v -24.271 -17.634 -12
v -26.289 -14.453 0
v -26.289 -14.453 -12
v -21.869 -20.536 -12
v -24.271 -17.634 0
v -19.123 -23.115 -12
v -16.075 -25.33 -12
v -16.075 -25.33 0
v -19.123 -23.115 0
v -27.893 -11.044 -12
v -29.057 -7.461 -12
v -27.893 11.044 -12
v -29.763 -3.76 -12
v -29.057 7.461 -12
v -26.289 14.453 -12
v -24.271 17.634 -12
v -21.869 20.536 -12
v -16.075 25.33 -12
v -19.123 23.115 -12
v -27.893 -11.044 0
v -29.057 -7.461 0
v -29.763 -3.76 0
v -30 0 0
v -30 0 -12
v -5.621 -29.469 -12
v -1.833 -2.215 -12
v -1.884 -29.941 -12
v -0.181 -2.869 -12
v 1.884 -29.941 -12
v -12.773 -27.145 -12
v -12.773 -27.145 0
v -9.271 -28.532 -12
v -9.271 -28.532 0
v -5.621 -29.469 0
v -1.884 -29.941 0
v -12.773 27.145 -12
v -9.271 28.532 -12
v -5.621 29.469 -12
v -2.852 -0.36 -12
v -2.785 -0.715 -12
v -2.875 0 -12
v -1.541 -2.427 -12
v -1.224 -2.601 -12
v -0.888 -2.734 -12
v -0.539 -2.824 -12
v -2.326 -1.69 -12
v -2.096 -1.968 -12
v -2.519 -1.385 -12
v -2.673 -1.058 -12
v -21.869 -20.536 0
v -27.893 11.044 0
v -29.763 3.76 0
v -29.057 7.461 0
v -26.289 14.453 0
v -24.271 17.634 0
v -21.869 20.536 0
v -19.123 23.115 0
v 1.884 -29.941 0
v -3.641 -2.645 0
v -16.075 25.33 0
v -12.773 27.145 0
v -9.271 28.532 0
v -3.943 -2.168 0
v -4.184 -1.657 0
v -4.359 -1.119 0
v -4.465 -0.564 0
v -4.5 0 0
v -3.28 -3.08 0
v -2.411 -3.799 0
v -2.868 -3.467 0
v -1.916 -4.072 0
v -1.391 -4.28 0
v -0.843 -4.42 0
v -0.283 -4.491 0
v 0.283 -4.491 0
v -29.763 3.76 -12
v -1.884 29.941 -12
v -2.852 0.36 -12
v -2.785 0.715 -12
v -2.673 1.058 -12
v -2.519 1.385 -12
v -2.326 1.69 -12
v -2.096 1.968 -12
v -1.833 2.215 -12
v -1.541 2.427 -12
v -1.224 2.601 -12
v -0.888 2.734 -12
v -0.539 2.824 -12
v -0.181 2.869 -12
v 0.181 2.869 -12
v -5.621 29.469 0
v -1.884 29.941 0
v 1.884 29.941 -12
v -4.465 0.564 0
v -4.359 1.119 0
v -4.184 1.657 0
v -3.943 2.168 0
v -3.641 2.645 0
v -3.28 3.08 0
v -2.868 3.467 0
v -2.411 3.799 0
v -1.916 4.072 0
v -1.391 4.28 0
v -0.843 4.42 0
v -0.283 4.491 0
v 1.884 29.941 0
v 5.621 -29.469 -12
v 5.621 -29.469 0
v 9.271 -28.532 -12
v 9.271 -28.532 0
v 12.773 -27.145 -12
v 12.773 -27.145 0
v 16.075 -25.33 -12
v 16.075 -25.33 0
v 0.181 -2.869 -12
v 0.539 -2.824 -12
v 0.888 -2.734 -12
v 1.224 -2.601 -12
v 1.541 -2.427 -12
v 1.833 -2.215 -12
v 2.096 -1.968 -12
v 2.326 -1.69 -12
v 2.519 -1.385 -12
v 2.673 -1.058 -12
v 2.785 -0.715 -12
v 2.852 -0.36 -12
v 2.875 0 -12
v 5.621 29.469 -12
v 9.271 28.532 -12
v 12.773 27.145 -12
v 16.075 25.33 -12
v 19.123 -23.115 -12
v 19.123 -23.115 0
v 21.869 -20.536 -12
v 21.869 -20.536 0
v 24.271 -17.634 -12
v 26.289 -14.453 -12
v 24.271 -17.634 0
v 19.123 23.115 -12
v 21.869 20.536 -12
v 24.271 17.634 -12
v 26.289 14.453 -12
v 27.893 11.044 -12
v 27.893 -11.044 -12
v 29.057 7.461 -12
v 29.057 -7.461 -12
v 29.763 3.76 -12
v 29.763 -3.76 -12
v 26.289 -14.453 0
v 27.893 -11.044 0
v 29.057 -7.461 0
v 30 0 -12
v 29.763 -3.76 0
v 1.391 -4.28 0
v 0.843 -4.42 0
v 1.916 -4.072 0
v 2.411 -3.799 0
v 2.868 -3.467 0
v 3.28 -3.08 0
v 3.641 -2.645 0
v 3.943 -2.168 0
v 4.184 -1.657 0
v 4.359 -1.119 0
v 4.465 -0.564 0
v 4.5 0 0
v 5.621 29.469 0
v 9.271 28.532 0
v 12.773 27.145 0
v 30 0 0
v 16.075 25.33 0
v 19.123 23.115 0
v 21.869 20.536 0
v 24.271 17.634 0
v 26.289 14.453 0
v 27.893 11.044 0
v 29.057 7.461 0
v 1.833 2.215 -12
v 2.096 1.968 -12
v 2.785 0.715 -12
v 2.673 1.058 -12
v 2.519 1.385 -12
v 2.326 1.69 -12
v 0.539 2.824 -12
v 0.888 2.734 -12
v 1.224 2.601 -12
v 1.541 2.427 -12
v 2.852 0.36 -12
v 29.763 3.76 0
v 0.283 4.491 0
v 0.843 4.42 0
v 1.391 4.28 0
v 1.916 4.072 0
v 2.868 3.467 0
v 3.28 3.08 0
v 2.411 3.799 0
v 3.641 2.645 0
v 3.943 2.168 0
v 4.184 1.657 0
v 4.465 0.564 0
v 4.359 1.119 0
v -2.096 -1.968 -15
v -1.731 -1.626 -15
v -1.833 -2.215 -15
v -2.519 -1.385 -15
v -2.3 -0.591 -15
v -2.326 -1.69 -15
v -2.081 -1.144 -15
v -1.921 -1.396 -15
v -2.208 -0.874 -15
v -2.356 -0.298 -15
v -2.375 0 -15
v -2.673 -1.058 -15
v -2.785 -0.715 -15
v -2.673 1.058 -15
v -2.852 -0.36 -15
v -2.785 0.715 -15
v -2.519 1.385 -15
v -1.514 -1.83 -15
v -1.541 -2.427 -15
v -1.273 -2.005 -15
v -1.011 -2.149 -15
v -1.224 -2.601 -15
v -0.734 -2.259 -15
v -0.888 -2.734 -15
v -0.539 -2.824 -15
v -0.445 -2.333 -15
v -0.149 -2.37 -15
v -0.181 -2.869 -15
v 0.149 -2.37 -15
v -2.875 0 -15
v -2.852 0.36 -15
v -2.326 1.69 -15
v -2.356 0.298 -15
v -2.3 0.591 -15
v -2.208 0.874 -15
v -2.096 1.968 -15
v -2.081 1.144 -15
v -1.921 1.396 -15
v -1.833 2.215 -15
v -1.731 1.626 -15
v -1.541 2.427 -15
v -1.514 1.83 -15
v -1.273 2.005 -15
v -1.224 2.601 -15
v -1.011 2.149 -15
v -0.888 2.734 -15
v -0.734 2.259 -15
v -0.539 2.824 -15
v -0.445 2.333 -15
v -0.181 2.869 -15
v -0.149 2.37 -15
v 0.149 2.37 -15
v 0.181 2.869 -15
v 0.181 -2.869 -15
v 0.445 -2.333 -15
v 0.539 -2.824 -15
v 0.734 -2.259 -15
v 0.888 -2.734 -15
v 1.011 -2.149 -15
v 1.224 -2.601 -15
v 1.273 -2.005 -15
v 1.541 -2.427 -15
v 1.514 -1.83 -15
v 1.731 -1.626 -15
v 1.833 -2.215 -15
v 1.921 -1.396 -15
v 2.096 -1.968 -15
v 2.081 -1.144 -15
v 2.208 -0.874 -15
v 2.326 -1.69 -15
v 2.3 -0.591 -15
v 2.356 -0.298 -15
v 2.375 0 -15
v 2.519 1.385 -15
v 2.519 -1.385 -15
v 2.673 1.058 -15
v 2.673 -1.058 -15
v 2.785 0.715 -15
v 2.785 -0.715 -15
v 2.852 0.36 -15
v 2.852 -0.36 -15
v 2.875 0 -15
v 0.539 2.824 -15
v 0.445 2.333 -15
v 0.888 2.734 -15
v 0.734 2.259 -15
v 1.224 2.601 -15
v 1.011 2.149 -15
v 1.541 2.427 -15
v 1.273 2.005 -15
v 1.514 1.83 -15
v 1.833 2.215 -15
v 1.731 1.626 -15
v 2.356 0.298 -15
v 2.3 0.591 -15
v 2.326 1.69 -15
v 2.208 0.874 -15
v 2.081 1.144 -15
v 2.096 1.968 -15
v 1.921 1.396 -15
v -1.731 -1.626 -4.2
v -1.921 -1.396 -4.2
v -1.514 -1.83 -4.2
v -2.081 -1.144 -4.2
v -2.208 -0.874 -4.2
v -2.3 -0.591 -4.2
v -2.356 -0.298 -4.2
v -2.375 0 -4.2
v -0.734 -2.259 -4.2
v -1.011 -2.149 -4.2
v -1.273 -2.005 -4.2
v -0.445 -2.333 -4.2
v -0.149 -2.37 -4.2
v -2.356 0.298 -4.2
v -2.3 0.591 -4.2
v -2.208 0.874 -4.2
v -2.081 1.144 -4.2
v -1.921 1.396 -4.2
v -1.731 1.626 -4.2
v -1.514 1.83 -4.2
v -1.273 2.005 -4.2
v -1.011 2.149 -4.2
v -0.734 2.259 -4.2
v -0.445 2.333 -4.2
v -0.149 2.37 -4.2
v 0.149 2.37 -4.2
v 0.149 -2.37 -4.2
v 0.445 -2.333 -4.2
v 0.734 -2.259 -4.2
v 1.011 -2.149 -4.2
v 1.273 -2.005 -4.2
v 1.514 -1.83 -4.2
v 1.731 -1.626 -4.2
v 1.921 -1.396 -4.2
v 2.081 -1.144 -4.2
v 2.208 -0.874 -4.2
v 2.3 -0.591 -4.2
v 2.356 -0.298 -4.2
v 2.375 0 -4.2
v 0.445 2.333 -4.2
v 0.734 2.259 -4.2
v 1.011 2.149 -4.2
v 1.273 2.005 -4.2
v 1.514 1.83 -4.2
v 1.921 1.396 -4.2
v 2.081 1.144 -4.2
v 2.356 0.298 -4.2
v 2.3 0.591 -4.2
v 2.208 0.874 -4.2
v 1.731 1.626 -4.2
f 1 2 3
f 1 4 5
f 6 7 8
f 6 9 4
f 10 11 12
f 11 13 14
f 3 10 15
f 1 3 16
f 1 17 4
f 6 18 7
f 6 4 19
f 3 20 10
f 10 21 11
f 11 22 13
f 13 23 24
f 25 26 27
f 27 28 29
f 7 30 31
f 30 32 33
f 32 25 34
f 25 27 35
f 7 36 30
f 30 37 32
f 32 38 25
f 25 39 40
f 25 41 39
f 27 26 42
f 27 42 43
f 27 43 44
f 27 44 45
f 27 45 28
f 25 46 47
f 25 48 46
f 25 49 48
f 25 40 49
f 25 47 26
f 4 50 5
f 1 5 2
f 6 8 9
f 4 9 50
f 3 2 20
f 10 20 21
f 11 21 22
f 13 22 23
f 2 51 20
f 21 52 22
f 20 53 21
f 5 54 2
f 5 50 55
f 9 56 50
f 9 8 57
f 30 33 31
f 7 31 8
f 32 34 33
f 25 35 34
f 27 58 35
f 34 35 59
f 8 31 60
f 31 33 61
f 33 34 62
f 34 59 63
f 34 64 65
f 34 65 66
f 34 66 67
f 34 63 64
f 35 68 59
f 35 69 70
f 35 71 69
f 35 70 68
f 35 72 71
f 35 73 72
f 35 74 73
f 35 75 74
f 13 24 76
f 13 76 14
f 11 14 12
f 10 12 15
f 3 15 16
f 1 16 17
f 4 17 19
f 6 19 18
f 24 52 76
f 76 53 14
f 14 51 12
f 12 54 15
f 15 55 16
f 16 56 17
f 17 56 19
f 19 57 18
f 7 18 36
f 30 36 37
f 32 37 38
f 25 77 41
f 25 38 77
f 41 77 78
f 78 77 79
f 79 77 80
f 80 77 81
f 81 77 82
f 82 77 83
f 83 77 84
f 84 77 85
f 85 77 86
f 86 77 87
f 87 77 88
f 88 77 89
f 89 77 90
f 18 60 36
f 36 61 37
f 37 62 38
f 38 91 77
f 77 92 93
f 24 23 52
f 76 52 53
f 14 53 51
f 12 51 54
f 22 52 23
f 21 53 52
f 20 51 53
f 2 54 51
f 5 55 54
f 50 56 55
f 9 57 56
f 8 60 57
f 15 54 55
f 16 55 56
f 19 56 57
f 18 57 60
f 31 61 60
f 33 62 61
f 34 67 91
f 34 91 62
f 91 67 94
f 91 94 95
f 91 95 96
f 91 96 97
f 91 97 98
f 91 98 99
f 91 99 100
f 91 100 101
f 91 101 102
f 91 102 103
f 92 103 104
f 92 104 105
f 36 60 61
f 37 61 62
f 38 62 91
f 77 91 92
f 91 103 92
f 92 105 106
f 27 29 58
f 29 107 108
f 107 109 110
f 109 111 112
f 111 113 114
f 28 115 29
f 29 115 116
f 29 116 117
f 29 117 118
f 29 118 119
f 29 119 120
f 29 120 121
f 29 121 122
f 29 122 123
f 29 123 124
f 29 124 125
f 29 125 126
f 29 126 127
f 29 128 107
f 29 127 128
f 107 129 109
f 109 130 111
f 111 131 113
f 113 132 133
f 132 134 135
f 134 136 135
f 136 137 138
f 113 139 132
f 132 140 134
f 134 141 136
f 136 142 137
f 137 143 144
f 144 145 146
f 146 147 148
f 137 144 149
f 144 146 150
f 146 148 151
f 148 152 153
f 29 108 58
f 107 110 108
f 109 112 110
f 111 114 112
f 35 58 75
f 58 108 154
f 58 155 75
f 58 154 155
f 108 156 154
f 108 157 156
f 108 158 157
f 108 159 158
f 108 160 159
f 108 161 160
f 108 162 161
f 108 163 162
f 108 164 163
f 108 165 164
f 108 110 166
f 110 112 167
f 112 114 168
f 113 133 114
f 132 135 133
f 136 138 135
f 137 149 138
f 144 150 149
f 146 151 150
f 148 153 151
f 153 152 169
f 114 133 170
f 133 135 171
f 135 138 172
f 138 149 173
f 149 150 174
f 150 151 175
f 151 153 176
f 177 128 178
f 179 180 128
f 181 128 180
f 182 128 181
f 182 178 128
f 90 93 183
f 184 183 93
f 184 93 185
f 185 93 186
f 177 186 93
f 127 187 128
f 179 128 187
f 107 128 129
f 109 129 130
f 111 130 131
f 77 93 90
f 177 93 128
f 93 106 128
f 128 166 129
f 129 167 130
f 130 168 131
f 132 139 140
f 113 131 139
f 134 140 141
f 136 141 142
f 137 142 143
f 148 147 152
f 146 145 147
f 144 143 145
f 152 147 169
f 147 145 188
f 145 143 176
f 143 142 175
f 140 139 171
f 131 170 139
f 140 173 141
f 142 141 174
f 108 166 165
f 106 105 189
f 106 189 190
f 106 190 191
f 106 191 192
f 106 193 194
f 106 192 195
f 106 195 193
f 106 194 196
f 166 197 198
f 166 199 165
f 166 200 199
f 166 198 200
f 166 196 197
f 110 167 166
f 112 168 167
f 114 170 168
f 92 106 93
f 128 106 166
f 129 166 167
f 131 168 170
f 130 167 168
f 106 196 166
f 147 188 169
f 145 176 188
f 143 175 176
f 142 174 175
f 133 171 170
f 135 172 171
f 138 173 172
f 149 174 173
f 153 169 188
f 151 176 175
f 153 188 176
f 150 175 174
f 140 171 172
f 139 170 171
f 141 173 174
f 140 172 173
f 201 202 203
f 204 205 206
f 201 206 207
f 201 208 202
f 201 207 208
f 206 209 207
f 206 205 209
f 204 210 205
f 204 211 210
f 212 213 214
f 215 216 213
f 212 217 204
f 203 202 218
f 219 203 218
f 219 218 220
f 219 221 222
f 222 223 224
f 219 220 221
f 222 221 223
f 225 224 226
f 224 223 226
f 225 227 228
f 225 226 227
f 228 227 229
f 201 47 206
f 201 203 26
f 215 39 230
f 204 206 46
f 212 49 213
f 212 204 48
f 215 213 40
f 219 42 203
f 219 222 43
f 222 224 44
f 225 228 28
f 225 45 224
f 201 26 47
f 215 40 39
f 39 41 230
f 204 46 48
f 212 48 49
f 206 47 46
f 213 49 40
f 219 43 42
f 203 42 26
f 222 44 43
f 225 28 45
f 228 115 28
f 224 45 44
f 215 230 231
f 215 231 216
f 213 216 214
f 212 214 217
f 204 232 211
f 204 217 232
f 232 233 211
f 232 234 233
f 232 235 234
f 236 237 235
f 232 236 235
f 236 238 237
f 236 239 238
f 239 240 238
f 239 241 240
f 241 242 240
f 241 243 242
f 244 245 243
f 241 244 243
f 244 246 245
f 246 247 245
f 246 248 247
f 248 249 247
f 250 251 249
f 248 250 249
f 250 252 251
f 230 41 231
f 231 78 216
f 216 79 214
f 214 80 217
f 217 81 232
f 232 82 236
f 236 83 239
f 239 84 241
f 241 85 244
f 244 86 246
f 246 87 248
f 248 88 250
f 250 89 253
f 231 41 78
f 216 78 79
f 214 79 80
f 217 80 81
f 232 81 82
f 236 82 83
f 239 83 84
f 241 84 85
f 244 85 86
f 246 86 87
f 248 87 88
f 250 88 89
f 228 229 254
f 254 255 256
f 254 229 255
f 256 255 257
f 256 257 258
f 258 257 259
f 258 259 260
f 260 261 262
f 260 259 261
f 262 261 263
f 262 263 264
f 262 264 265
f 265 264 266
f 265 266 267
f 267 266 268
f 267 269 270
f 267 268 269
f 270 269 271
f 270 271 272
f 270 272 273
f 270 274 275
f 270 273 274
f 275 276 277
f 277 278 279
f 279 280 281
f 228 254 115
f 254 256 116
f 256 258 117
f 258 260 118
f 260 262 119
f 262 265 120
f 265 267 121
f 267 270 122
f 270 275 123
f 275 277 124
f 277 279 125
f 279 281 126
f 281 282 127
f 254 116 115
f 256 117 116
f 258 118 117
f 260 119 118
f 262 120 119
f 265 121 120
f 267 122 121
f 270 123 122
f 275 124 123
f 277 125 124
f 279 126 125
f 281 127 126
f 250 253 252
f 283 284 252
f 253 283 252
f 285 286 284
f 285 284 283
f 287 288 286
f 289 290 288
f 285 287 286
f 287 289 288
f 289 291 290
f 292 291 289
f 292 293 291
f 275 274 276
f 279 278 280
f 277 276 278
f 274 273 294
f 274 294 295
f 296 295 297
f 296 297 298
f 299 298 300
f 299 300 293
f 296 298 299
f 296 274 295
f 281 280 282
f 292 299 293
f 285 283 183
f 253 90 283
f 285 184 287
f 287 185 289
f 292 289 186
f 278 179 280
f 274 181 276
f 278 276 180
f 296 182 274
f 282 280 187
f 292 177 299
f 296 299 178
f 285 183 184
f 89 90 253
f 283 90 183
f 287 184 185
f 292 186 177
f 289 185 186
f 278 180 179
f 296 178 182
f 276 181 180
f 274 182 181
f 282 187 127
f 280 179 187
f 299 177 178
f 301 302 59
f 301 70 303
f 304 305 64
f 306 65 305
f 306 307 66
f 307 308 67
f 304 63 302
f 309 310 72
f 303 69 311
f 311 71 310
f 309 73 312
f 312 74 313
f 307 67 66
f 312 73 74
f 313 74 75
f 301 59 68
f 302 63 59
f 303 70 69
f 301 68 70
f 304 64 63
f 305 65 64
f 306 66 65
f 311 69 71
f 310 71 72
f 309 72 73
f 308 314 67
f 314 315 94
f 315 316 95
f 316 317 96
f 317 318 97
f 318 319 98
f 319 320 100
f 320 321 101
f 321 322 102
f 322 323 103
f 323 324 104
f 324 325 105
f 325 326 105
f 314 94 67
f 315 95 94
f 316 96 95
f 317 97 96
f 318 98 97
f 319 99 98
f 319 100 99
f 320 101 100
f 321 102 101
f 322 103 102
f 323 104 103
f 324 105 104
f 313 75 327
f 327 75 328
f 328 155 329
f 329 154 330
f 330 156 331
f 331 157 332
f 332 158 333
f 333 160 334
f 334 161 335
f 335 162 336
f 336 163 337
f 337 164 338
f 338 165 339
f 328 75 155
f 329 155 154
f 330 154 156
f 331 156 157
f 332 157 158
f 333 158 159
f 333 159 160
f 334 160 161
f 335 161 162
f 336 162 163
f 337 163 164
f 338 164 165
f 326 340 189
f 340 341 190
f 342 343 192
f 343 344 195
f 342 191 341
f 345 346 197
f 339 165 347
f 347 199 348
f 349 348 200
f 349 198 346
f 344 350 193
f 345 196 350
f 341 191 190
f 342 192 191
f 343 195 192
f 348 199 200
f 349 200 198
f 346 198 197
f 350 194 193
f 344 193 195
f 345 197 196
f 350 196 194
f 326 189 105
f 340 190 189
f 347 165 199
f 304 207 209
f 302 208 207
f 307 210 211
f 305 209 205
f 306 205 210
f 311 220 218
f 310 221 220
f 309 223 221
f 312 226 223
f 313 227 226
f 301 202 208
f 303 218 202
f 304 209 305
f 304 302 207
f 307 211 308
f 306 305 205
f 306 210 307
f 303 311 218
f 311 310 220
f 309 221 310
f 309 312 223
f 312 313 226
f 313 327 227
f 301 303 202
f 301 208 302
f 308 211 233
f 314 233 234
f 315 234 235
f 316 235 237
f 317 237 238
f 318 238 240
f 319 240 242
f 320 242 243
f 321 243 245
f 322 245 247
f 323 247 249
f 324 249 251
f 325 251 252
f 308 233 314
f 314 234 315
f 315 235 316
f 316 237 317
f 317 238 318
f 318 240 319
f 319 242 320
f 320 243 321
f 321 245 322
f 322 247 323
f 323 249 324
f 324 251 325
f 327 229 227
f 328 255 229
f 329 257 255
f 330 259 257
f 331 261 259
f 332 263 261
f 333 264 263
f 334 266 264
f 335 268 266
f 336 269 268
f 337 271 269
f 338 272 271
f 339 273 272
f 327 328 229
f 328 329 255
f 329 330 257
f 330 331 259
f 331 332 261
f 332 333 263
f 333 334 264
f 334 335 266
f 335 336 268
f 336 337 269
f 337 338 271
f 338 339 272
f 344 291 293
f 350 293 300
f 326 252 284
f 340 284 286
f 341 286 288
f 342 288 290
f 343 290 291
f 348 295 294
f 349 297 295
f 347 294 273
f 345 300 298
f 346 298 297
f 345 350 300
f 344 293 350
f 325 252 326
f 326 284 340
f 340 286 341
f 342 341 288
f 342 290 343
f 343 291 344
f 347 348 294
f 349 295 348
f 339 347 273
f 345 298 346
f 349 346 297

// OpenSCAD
$fn = 50;

difference() {
	union() {
		translate(v = [0, 0, -12.0]) {
			cylinder(h = 12, r = 30.0);
		}
		#translate(v = [0, 0, -15.0]) {
			cylinder(h = 15, r = 2.875);
		}
	}
	union() {
		translate(v = [0, 0, 0]) {
			rotate(a = [0, 0, 0]) {
				difference() {
					union() {
						translate(v = [0, 0, -15.0]) {
							cylinder(h = 15, r = 2.25);
						}
						translate(v = [0, 0, -4.2]) {
							cylinder(h = 4.2, r1 = 2.375, r2 = 4.5);
						}
						translate(v = [0, 0, -15.0]) {
							cylinder(h = 15, r = 2.375);
						}
						translate(v = [0, 0, -15.0]) {
							cylinder(h = 15, r = 2.25);
						}
					}
					union();
				}
			}
		}
	}
}
